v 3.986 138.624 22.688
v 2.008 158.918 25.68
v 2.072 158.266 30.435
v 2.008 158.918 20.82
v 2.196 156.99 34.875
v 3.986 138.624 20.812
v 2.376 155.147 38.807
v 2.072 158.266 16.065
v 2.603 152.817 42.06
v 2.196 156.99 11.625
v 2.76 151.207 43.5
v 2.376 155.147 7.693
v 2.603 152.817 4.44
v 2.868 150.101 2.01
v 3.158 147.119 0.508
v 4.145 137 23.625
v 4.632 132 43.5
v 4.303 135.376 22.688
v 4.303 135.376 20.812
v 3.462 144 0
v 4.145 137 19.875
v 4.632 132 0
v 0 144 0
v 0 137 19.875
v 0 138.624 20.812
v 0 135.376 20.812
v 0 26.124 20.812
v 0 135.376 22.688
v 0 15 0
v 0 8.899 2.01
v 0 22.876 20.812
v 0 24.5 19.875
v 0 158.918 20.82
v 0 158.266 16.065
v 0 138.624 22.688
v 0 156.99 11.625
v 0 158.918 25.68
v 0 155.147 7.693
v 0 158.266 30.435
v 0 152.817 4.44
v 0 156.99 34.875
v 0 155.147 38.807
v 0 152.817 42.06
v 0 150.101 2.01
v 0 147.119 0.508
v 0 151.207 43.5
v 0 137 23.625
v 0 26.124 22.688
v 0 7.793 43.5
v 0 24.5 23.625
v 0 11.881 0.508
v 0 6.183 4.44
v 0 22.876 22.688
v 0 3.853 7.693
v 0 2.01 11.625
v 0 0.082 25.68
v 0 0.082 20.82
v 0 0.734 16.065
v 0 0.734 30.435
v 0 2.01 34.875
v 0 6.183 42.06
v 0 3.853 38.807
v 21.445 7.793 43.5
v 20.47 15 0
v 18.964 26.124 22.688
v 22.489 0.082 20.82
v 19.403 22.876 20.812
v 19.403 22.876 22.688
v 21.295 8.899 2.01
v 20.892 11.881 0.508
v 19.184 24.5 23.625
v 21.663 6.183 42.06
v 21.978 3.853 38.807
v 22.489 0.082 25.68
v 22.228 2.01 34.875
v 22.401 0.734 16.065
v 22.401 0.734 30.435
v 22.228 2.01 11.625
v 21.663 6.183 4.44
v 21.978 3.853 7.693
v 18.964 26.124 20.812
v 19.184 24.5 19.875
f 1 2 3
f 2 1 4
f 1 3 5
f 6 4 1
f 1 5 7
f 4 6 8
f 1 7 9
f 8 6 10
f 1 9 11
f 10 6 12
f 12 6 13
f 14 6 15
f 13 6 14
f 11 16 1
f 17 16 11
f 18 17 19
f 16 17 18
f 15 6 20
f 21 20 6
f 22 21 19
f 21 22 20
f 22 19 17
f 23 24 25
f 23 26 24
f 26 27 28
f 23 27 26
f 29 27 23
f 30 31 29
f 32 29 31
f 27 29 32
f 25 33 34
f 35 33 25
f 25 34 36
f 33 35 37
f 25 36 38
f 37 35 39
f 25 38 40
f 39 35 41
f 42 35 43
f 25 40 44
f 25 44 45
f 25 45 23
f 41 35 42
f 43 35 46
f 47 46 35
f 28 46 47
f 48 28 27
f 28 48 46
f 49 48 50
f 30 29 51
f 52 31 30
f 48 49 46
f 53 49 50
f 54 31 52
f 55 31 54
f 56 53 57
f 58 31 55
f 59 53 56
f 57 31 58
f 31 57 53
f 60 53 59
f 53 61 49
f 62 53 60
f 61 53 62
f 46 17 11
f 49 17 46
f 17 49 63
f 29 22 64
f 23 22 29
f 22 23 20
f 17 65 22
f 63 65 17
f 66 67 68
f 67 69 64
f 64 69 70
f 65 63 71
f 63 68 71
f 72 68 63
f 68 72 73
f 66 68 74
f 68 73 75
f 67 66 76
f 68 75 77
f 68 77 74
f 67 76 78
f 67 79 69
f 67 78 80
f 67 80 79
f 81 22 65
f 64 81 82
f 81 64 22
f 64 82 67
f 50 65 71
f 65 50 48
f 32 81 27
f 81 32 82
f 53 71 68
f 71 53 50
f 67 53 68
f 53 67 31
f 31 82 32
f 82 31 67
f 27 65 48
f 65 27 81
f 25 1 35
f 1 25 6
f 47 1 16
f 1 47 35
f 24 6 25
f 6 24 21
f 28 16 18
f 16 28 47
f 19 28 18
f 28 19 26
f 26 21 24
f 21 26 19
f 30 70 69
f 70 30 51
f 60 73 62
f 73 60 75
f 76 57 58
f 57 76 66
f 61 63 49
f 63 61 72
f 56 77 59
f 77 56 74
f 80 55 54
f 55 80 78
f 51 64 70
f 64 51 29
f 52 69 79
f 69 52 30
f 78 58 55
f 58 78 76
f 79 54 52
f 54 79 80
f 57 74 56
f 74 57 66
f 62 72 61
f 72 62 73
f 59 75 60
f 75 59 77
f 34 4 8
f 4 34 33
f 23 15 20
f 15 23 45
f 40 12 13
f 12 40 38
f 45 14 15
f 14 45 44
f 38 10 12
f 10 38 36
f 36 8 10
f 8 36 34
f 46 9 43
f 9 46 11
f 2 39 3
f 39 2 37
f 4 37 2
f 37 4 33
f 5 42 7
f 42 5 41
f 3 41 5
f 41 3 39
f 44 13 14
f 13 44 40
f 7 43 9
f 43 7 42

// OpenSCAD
// Generated by SolidPython 1.1.3 on 2025-05-08 14:21:11


difference() {
	union() {
		linear_extrude(height = 43.5000000000) {
			polygon(points = [[0, 0], [17.5000000000, 0], [2, 159], [0, 159]]);
		}
		linear_extrude(height = 43.5000000000) {
			polygon(points = [[17.5000000000, 0], [22.5000000000, 0], [4.6320754717, 132], [4.6320754717, 132]]);
		}
	}
	union() {
		translate(v = [7.5558176101, 24.5000000000, 21.7500000000]) {
			rotate(a = [0, 90, 0]) {
				cylinder(center = true, h = 45.5000000000, r = 1.8750000000);
			}
		}
		translate(v = [2.0723270440, 137, 21.7500000000]) {
			rotate(a = [0, 90, 0]) {
				cylinder(center = true, h = 45.5000000000, r = 1.8750000000);
			}
		}
		translate(v = [17.1476200686, 24.5000000000, 21.7500000000]) {
			rotate(a = [0, 90, 0]) {
				cylinder(center = true, h = 45.5000000000, r = 1.8750000000);
			}
		}
	}
	difference() {
		translate(v = [0, 0, 0]) {
			cube(center = false, size = [23.5000000000, 15, 43.5000000000]);
		}
		scale(v = [1, 1, 1.5500000000]) {
			translate(v = [0, 15, 15]) {
				rotate(a = [0, 90, 0]) {
					cylinder(center = false, h = 23.5000000000, r = 15);
				}
			}
		}
	}
	translate(v = [0, 129, 0]) {
		difference() {
			translate(v = [0, 15, 0]) {
				cube(center = false, size = [23.5000000000, 15, 43.5000000000]);
			}
			scale(v = [1, 1, 1.5500000000]) {
				translate(v = [0, 15, 15]) {
					rotate(a = [0, 90, 0]) {
						cylinder(center = false, h = 23.5000000000, r = 15);
					}
				}
			}
		}
	}
}
/***********************************************
*********      SolidPython code:      **********
************************************************
 
#! /home/tfili/Source/tfili/3d-printing/venv/bin/python

from solid import *
from solid.utils import *
import subprocess
import math

# Dimensions
height = 159             # vertical height (Y)
width = 43.5             # width of the side face (Z)
top_thickness = 17.5     # thickness at the top (X)
bottom_thickness = 2     # thickness at the bottom (X)
screw_diameter = 3.75
screw_radius = screw_diameter / 2

# Hole positions (from top and bottom)
hole1_from_top = 24.5
hole2_from_bottom = 22
hole1_y = hole1_from_top                     # 24.5mm from top
hole2_y = height - hole2_from_bottom         # 22mm from bottom

rounded_edge_radius = 15

# Calculate slope angle in degrees
slope_angle = math.degrees(math.atan2(top_thickness - bottom_thickness, height))

# Second wedge parameters
second_wedge_length = 132  # vertical height along original Y
second_top_thickness = 6
second_bottom_thickness = 0

# Calculate thickness at a specific Y position along the slope
def thickness_at(y):
    return top_thickness - (top_thickness - bottom_thickness) * (y / height)

# Create wedge shape
def create_wedge():
    profile = polygon(points=[
        [0, 0],
        [top_thickness, 0],
        [bottom_thickness, height],
        [0, height]
    ])
    return linear_extrude(width)(profile)

# Create a hole through the side at a specific Y position
def create_side_hole(y_pos):
    local_thickness = thickness_at(y_pos)
    return translate([local_thickness / 2, y_pos, width / 2])(
        rotate([0, 90, 0])(
            cylinder(h=width + 2, r=screw_radius, center=True)
        )
    )

# Add a second wedge on the sloped face
def create_second_wedge():
    # This wedge lies directly on top of the sloped face
    # So we offset all X values by the thickness of the first wedge at each Y

    # Find the first wedge thickness at the end of the second wedge
    wedge_thickness = thickness_at(second_wedge_length)

    profile = polygon(points=[
        [top_thickness, 0],
        [top_thickness + 5, 0],
        [wedge_thickness, second_wedge_length],
        [wedge_thickness, second_wedge_length]  # optional, for clarity
    ])
    return linear_extrude(width)(profile)

# Create a hole in the second wedge at 24.5mm from the top
def create_second_wedge_hole(y_pos):
    # Second wedge thickness at y
    local_thickness = 5 * (1 - y_pos / second_wedge_length)
    x_pos = thickness_at(y_pos) + local_thickness / 2
    return translate([x_pos, y_pos, width / 2])(
        rotate([0, 90, 0])(
            cylinder(h=width + 2, r=screw_radius, center=True)
        )
    )

# Generate a rectangle and cut a cylinder out of it and subtract that from the model
def create_rounded_mask(top=True):
    thickness = top_thickness + second_top_thickness
    scaleFactor = width / (2 * rounded_edge_radius);
    rect = translate([0, (0 if top else rounded_edge_radius), 0]) (
             cube([thickness, rounded_edge_radius, width], center = False)
           )
    cyl = scale([1, 1, (width/(rounded_edge_radius*2))+0.1]) (
            translate([0, rounded_edge_radius, rounded_edge_radius]) (
              rotate([0,90,0]) (
                cylinder(r = rounded_edge_radius, h = thickness, center = False)
              )
            )
          )

    return rect - cyl

# Move it to the bottom
def create_bottom_rounded_mask():
    return translate([0, height-rounded_edge_radius*2, 0]) (
      create_rounded_mask(False)
    )

# Build model
wedge = create_wedge()
hole1 = create_side_hole(hole1_y)
hole2 = create_side_hole(hole2_y)
second_wedge = create_second_wedge()
second_hole = create_second_wedge_hole(hole1_y)
top_mask = create_rounded_mask();
bottom_mask = create_bottom_rounded_mask()

# Combine everything
model = (wedge + second_wedge) - (hole1 + hole2 + second_hole) - top_mask - bottom_mask

# Export to SCAD
scad_render_to_file(model, 'wedge.scad')

# Convert to STL
subprocess.run(["openscad", "-o", "wedge.stl", "wedge.scad"], stdout=subprocess.PIPE, stderr=subprocess.PIPE, text=True) 
 
************************************************/
